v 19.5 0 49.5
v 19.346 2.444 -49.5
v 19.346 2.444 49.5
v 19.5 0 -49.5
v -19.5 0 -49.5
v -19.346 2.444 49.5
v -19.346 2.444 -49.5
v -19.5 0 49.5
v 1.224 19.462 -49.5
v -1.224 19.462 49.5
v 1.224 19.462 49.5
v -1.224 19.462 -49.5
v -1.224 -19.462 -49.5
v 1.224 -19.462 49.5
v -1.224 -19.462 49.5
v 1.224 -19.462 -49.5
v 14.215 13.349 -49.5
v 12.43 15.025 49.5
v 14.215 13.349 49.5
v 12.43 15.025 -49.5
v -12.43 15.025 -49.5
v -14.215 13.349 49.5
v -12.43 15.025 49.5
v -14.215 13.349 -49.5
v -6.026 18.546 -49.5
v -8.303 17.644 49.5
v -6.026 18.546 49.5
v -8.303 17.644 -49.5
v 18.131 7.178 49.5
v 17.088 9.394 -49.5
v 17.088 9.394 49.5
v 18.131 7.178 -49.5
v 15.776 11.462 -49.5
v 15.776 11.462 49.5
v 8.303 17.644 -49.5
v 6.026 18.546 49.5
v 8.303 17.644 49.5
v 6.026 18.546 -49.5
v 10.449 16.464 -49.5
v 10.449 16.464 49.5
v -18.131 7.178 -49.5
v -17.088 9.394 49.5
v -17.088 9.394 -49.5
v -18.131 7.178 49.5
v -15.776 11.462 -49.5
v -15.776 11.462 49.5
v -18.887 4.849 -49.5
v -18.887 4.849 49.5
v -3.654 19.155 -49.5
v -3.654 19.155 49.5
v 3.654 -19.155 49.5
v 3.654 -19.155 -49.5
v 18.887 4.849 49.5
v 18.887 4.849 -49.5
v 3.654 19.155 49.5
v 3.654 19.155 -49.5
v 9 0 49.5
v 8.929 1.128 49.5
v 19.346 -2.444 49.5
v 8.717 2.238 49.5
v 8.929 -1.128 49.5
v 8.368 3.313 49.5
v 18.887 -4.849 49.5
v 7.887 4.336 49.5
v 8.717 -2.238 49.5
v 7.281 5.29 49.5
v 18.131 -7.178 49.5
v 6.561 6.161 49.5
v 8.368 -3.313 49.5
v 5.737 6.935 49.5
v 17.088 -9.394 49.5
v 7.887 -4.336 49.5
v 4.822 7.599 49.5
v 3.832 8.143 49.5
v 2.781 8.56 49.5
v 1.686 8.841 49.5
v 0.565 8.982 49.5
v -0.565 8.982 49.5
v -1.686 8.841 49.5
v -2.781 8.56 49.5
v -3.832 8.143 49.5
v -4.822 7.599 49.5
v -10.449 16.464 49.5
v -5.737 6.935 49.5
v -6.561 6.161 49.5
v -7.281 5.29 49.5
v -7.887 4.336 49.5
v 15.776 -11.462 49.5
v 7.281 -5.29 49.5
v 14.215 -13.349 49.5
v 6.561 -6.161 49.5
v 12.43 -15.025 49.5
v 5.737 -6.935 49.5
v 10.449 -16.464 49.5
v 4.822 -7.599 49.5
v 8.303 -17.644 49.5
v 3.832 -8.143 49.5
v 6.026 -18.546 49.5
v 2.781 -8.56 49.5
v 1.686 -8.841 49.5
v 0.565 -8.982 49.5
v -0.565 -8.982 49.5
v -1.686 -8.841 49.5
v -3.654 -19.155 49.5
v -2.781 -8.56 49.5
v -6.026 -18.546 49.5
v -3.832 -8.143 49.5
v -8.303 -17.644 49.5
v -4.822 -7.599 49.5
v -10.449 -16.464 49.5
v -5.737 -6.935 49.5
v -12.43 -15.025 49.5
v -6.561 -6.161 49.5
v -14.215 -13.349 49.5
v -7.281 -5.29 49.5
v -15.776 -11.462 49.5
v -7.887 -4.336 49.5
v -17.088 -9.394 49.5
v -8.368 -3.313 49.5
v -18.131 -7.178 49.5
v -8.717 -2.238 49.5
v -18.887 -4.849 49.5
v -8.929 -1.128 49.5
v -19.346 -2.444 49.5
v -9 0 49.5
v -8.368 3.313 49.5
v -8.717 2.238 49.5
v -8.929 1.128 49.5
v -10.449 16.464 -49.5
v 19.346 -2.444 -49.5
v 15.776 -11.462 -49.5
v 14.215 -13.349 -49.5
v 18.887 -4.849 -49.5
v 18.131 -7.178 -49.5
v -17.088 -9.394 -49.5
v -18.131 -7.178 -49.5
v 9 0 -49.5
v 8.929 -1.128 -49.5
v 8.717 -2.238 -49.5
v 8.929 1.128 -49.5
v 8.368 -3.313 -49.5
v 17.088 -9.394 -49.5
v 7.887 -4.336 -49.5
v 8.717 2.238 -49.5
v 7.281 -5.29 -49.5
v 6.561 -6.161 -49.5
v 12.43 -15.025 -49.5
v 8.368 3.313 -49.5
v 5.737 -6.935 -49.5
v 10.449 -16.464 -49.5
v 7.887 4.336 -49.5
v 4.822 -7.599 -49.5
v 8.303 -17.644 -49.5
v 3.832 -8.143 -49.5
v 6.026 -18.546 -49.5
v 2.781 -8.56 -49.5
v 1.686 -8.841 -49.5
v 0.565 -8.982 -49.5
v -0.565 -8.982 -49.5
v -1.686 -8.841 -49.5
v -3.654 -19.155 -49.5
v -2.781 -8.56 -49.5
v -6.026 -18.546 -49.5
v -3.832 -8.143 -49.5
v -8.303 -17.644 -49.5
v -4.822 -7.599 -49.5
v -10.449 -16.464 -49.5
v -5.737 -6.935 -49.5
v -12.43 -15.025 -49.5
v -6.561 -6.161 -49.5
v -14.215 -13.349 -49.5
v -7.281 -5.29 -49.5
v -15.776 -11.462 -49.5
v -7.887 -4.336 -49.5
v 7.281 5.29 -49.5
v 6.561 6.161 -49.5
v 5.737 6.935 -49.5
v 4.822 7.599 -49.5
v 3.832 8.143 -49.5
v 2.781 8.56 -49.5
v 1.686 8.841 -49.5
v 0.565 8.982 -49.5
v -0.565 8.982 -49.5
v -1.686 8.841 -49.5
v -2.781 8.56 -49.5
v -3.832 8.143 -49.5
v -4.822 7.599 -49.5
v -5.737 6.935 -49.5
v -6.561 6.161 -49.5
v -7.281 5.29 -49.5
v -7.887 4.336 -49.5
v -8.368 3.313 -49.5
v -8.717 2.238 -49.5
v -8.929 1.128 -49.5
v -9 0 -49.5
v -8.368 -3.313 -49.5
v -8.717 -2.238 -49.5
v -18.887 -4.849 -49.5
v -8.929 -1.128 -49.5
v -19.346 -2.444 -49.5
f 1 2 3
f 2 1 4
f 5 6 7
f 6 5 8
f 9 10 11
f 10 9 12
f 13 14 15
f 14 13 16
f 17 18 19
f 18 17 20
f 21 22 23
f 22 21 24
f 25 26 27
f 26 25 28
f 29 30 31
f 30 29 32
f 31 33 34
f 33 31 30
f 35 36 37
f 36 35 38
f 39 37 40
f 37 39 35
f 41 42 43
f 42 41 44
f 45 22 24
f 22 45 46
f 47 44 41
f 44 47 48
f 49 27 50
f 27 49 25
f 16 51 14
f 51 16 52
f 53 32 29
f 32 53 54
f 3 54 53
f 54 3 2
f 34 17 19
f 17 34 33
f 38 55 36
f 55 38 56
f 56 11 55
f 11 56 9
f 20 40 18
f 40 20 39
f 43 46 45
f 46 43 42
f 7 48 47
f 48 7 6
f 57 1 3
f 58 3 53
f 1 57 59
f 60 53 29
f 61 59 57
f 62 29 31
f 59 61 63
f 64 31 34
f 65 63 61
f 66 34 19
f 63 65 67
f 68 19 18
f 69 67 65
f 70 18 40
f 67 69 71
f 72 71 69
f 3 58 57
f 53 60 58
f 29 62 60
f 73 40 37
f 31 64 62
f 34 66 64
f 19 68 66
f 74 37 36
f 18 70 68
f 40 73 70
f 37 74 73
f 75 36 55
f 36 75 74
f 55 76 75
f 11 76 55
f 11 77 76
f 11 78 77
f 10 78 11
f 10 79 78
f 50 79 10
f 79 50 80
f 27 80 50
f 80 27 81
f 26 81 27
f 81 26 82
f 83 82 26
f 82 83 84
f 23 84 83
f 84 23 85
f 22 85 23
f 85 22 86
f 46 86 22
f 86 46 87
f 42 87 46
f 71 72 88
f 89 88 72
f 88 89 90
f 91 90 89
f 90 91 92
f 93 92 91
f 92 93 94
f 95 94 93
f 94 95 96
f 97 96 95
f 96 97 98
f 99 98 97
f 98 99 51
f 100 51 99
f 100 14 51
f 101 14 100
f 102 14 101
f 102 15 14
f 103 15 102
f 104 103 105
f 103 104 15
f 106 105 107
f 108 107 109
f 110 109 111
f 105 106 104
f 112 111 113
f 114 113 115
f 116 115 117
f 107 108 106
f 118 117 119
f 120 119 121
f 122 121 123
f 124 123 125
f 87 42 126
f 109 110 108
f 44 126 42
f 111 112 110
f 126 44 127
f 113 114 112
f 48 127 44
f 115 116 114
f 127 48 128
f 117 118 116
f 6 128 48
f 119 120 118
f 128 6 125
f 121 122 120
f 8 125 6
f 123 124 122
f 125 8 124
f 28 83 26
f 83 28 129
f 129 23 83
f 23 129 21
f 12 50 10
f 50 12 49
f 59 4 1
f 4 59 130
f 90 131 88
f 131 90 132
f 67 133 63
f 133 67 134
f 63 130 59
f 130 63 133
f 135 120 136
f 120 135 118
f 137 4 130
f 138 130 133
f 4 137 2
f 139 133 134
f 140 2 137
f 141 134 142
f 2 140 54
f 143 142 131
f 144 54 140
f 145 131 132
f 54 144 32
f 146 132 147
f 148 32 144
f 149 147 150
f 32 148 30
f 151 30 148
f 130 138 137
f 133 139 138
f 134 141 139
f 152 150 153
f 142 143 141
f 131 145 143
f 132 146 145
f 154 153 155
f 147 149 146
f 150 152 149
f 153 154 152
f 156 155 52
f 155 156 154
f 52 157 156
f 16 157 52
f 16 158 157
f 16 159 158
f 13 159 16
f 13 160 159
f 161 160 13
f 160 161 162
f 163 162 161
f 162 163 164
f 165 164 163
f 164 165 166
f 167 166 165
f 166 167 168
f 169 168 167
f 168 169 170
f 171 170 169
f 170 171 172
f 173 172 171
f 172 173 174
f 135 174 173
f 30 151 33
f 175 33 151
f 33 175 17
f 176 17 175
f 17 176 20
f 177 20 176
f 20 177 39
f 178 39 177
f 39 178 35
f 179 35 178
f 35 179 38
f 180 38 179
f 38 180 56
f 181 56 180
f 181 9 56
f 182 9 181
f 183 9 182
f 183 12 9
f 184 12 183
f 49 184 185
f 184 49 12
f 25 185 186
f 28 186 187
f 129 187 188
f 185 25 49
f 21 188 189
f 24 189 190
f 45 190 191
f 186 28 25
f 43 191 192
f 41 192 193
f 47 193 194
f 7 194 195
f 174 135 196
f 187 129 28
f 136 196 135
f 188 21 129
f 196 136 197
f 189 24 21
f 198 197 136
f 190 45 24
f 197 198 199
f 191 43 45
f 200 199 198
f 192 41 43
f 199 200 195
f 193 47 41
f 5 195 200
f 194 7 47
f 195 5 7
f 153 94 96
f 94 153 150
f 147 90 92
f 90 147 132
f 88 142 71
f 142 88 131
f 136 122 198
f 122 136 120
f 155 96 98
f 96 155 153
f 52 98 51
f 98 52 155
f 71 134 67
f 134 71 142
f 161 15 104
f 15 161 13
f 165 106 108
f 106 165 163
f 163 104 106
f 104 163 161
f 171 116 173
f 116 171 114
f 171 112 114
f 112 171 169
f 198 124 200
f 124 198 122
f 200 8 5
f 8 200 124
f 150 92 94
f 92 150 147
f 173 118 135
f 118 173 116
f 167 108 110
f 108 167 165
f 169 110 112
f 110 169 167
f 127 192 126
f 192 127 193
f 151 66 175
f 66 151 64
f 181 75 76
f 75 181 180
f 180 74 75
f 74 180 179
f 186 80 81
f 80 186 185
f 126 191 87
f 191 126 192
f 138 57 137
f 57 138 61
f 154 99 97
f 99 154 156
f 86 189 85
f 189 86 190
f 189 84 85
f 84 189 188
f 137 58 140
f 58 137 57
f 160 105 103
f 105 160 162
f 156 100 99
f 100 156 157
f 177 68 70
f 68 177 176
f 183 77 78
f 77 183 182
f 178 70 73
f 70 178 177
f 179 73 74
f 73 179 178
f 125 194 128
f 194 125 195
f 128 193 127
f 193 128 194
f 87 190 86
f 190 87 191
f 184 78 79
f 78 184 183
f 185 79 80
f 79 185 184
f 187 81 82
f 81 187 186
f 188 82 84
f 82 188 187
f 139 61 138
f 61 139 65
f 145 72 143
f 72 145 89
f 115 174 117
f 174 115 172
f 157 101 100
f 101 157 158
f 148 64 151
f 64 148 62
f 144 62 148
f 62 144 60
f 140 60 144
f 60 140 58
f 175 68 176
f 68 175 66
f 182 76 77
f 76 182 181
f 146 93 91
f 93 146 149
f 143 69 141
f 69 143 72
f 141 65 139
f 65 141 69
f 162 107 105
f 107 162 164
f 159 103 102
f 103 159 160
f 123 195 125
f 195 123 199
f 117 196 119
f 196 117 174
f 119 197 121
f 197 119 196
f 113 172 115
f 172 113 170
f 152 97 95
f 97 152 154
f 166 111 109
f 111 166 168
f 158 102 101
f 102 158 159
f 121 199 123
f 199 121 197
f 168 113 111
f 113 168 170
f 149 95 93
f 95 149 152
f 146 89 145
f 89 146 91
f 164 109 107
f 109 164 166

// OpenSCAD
$fn = 50;


difference() {
	union() {
		translate(v = [0, 0, -49.5000000000]) {
			cylinder(h = 99, r = 19.5000000000);
		}
	}
	union() {
		translate(v = [0, 0, -100.0000000000]) {
			cylinder(h = 200, r = 9);
		}
	}
}
